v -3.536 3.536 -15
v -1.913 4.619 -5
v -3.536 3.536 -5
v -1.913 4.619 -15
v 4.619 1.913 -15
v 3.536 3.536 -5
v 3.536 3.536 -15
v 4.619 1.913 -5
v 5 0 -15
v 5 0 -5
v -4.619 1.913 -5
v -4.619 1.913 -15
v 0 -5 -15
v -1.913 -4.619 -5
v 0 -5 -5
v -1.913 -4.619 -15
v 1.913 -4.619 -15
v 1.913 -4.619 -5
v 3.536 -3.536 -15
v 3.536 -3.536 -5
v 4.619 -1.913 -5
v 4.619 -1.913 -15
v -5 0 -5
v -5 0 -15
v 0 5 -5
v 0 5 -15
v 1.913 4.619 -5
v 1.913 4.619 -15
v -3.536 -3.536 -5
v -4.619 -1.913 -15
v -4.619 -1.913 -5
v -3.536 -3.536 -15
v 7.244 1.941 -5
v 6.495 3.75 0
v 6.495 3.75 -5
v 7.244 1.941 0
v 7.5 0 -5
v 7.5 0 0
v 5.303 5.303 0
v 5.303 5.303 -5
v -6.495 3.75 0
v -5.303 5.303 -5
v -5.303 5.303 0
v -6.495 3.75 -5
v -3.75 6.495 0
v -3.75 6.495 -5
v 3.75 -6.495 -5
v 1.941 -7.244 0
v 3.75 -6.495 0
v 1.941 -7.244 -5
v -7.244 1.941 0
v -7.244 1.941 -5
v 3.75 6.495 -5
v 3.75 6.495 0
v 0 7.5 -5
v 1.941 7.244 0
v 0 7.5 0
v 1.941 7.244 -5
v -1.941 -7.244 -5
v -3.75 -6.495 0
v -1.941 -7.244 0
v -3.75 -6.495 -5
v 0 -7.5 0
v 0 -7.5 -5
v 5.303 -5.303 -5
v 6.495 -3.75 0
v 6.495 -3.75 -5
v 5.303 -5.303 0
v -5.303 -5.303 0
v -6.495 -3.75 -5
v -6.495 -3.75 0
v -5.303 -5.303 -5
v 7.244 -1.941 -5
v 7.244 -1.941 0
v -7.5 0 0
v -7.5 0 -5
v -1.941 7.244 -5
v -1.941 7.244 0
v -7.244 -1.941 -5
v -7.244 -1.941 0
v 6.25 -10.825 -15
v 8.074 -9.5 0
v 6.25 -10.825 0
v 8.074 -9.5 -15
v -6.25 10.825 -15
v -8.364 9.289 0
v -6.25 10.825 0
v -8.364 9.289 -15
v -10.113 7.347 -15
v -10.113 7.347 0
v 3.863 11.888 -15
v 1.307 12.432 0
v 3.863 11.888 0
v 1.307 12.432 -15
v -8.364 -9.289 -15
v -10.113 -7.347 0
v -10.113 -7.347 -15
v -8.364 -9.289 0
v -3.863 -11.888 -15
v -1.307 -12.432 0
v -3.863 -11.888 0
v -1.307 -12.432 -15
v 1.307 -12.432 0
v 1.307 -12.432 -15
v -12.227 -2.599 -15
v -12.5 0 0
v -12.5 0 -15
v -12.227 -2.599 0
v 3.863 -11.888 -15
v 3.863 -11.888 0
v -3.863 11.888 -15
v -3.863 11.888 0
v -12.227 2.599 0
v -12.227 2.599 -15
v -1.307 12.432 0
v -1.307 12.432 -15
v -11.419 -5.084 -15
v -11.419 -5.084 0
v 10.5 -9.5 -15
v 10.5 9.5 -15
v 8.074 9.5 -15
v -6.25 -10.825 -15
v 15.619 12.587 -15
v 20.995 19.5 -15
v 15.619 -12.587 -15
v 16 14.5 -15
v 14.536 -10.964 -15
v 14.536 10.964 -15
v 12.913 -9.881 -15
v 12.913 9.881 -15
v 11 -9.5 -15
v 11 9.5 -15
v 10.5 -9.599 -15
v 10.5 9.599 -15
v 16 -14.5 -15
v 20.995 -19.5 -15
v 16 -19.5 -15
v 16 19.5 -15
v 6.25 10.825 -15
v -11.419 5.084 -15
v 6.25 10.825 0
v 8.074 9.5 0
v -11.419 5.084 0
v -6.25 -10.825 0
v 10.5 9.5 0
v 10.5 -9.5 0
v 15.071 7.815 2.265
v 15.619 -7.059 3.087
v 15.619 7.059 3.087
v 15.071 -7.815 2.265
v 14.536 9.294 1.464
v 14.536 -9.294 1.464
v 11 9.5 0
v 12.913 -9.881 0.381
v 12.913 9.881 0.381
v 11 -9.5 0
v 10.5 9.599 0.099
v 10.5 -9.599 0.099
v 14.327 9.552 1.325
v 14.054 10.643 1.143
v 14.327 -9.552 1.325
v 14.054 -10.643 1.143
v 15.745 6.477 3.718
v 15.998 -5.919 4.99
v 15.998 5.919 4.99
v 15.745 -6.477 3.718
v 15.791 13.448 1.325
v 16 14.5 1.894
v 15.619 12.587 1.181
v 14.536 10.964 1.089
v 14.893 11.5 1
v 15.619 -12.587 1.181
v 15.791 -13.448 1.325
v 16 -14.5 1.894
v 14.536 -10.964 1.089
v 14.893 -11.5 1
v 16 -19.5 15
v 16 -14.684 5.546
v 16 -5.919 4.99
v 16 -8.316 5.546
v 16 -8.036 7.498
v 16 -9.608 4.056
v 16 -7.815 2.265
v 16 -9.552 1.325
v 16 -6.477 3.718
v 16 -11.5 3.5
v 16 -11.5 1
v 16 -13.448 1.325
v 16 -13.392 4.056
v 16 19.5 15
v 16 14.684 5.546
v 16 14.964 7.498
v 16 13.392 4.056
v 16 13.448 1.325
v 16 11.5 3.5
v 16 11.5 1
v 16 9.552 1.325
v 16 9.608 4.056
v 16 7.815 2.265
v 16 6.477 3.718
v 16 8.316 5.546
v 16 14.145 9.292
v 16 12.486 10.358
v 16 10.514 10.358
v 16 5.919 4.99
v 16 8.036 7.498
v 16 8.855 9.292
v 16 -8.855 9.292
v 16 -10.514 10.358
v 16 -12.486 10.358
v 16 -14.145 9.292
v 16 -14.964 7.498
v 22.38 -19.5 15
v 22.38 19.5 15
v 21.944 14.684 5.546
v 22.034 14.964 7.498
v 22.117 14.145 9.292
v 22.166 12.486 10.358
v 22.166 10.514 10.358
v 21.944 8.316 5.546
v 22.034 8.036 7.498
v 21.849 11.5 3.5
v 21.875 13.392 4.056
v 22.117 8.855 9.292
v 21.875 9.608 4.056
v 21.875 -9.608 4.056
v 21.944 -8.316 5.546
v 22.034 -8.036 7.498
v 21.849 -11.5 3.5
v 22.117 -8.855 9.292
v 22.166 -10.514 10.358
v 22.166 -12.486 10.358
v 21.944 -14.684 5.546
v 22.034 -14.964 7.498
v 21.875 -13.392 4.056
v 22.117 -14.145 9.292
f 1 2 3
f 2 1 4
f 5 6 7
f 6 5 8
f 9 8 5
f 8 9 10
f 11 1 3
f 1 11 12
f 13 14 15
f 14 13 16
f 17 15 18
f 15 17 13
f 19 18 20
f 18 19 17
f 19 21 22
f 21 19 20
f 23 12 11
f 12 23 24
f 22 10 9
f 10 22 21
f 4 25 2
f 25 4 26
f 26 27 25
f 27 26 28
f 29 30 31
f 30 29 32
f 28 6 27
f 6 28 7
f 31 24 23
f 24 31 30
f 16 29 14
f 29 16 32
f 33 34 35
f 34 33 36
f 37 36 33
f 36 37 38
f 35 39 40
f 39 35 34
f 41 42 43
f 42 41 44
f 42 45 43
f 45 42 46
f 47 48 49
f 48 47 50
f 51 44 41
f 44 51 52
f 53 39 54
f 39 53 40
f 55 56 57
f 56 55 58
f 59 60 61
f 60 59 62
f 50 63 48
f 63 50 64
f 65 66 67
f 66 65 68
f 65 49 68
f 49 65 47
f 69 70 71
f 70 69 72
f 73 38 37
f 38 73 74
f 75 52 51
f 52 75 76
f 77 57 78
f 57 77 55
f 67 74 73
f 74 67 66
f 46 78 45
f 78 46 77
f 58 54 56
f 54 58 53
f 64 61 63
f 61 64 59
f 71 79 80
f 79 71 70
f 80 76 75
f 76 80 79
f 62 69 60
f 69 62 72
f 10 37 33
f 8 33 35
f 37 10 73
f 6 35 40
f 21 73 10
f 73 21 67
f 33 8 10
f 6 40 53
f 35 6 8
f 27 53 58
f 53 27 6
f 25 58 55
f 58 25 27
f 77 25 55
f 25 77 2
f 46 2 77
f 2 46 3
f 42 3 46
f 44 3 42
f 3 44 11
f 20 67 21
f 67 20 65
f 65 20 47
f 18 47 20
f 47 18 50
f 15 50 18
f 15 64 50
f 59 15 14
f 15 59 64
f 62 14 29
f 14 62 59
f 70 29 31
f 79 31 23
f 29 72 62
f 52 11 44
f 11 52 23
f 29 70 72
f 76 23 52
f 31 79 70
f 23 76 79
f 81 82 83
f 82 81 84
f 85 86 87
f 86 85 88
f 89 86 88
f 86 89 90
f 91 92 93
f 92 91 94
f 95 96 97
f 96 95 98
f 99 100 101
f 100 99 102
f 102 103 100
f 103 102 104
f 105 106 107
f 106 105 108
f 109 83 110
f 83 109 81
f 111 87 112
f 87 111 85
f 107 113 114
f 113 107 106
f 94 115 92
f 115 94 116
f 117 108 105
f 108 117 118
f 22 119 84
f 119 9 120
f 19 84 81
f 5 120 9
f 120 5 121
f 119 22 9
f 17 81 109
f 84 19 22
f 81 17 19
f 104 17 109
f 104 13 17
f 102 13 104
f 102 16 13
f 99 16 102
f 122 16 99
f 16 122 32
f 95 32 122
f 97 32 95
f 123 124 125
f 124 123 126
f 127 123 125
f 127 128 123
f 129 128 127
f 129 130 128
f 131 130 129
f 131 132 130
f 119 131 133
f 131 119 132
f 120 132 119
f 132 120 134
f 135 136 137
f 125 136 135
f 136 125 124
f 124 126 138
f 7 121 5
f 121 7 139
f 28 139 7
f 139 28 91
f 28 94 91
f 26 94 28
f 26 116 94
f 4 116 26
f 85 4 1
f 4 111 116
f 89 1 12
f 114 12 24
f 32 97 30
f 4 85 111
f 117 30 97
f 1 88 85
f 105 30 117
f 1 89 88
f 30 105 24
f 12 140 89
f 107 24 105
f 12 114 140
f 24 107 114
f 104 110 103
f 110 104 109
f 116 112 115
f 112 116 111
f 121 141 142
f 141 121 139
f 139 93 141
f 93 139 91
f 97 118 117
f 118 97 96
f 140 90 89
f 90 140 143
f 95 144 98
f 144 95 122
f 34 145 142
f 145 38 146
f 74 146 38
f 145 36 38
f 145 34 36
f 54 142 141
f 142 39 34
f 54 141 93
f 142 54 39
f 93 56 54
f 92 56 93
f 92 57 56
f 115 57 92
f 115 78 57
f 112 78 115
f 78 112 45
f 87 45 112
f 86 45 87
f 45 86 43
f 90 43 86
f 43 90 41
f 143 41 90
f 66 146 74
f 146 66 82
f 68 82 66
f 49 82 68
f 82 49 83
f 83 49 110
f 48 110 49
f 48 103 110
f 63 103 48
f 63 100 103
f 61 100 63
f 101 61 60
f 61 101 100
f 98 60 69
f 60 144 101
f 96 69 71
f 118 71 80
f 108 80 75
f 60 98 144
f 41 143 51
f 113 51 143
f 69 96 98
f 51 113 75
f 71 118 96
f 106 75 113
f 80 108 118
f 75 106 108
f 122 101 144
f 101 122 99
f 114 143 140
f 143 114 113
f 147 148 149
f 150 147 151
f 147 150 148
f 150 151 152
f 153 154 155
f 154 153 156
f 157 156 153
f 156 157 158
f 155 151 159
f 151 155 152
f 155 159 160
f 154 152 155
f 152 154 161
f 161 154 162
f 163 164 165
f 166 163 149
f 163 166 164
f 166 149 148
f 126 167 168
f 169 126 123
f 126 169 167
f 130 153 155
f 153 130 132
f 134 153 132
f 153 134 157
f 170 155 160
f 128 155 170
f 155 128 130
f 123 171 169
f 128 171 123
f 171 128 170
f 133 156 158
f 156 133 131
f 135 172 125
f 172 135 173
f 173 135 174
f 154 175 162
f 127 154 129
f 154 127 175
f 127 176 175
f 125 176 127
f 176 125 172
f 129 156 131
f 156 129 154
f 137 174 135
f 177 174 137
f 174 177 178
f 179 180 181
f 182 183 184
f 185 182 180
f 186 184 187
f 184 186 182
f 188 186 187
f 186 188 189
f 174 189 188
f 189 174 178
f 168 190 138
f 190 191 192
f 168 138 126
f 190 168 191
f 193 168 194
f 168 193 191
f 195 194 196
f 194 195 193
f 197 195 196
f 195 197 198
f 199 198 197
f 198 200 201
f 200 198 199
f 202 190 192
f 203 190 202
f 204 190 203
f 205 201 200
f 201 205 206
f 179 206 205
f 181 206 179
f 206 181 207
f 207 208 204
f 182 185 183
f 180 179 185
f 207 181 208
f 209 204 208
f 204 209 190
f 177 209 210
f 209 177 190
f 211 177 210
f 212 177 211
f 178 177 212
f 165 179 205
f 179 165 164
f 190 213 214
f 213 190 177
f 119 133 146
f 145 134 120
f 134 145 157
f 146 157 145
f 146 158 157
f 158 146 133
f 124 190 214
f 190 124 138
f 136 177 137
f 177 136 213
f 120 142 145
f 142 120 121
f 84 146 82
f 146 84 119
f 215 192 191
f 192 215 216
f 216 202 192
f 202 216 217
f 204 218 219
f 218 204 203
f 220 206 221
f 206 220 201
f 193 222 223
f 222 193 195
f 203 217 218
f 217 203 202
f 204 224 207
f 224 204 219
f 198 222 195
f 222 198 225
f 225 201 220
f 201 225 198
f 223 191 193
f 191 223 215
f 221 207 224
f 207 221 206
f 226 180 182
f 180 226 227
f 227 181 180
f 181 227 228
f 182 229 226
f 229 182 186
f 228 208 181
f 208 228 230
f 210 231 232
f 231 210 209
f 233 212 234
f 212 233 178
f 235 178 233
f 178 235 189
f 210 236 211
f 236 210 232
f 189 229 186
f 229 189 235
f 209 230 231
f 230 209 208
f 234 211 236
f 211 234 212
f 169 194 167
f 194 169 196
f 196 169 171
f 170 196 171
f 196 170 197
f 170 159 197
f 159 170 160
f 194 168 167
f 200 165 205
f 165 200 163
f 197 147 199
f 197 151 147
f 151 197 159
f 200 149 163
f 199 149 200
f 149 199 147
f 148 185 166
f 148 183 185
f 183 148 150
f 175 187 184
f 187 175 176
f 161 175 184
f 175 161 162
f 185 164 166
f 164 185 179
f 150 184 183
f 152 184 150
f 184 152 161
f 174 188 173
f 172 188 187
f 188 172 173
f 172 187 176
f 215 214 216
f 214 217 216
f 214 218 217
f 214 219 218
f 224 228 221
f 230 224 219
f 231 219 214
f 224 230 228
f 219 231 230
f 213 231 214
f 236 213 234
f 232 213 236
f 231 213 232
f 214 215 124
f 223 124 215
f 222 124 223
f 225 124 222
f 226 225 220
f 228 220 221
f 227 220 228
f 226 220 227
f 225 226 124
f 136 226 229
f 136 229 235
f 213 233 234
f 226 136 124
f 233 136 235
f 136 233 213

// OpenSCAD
h=15;
    w=21-15/2;
    d=19;
pi=3.1415926;
module support(){
    difference(){
        cylinder(h,25/2,25/2); 
        union(){
            translate([0,0,-0.01]) cylinder(15+0.02,10/2,10/2);
            translate([0,0,h-5]) cylinder(5+0.01,15/2,15/2);
        }
    }
    translate([15/2,-d/2,0]) cube([w,d,h]);
    difference(){
        translate([15/2+3,-(d+20)/2,0]) cube([w,d+20,h+15]);
        union(){
            translate([21-5-5,0,5+h]) rotate([90,0,0]) cylinder(d+20,5,5,true);
            translate([21-5-5,d/2+5,(h+10)/2]) rotate([0,0,90]) cylinder(h+10+0.01,5,5,true);
            translate([21-5-5,-(d/2+5),(h+10)/2]) rotate([0,0,90]) cylinder(h+10+0.01,5,5,true);
            translate([0,d/2+5,-0.01]) cube([11+5,10,h+20]);
            translate([0,-(d/2+15),-0.01]) cube([11+5,10,h+20]);
            translate([0,-(d+20)/2,h+5-0.01]) cube([11+5,d+20,20]);
    
    }}
}        

translate([0,0,-h]) difference(){
    support(); 
        union(){
            translate([21-5,d/2+2,7+h]) rotate([0,90,0]) cylinder(20,3.5,3.5,true);
            translate([21-5,-(d/2)-2,7+h]) rotate([0,90,0]) cylinder(20,3.5,3.5,true);
            translate([6,d/2+2,7+h]) rotate([0,90,0]) cylinder(20,6,6,true);
            translate([6,-(d/2)-2,7+h]) rotate([0,90,0]) cylinder(20,6,6,true);
    translate([5+21,0,0]) rotate([0,6/130/pi*180,0]) cube([10,d+20+10,h+40+10],true);

        }
}
    
